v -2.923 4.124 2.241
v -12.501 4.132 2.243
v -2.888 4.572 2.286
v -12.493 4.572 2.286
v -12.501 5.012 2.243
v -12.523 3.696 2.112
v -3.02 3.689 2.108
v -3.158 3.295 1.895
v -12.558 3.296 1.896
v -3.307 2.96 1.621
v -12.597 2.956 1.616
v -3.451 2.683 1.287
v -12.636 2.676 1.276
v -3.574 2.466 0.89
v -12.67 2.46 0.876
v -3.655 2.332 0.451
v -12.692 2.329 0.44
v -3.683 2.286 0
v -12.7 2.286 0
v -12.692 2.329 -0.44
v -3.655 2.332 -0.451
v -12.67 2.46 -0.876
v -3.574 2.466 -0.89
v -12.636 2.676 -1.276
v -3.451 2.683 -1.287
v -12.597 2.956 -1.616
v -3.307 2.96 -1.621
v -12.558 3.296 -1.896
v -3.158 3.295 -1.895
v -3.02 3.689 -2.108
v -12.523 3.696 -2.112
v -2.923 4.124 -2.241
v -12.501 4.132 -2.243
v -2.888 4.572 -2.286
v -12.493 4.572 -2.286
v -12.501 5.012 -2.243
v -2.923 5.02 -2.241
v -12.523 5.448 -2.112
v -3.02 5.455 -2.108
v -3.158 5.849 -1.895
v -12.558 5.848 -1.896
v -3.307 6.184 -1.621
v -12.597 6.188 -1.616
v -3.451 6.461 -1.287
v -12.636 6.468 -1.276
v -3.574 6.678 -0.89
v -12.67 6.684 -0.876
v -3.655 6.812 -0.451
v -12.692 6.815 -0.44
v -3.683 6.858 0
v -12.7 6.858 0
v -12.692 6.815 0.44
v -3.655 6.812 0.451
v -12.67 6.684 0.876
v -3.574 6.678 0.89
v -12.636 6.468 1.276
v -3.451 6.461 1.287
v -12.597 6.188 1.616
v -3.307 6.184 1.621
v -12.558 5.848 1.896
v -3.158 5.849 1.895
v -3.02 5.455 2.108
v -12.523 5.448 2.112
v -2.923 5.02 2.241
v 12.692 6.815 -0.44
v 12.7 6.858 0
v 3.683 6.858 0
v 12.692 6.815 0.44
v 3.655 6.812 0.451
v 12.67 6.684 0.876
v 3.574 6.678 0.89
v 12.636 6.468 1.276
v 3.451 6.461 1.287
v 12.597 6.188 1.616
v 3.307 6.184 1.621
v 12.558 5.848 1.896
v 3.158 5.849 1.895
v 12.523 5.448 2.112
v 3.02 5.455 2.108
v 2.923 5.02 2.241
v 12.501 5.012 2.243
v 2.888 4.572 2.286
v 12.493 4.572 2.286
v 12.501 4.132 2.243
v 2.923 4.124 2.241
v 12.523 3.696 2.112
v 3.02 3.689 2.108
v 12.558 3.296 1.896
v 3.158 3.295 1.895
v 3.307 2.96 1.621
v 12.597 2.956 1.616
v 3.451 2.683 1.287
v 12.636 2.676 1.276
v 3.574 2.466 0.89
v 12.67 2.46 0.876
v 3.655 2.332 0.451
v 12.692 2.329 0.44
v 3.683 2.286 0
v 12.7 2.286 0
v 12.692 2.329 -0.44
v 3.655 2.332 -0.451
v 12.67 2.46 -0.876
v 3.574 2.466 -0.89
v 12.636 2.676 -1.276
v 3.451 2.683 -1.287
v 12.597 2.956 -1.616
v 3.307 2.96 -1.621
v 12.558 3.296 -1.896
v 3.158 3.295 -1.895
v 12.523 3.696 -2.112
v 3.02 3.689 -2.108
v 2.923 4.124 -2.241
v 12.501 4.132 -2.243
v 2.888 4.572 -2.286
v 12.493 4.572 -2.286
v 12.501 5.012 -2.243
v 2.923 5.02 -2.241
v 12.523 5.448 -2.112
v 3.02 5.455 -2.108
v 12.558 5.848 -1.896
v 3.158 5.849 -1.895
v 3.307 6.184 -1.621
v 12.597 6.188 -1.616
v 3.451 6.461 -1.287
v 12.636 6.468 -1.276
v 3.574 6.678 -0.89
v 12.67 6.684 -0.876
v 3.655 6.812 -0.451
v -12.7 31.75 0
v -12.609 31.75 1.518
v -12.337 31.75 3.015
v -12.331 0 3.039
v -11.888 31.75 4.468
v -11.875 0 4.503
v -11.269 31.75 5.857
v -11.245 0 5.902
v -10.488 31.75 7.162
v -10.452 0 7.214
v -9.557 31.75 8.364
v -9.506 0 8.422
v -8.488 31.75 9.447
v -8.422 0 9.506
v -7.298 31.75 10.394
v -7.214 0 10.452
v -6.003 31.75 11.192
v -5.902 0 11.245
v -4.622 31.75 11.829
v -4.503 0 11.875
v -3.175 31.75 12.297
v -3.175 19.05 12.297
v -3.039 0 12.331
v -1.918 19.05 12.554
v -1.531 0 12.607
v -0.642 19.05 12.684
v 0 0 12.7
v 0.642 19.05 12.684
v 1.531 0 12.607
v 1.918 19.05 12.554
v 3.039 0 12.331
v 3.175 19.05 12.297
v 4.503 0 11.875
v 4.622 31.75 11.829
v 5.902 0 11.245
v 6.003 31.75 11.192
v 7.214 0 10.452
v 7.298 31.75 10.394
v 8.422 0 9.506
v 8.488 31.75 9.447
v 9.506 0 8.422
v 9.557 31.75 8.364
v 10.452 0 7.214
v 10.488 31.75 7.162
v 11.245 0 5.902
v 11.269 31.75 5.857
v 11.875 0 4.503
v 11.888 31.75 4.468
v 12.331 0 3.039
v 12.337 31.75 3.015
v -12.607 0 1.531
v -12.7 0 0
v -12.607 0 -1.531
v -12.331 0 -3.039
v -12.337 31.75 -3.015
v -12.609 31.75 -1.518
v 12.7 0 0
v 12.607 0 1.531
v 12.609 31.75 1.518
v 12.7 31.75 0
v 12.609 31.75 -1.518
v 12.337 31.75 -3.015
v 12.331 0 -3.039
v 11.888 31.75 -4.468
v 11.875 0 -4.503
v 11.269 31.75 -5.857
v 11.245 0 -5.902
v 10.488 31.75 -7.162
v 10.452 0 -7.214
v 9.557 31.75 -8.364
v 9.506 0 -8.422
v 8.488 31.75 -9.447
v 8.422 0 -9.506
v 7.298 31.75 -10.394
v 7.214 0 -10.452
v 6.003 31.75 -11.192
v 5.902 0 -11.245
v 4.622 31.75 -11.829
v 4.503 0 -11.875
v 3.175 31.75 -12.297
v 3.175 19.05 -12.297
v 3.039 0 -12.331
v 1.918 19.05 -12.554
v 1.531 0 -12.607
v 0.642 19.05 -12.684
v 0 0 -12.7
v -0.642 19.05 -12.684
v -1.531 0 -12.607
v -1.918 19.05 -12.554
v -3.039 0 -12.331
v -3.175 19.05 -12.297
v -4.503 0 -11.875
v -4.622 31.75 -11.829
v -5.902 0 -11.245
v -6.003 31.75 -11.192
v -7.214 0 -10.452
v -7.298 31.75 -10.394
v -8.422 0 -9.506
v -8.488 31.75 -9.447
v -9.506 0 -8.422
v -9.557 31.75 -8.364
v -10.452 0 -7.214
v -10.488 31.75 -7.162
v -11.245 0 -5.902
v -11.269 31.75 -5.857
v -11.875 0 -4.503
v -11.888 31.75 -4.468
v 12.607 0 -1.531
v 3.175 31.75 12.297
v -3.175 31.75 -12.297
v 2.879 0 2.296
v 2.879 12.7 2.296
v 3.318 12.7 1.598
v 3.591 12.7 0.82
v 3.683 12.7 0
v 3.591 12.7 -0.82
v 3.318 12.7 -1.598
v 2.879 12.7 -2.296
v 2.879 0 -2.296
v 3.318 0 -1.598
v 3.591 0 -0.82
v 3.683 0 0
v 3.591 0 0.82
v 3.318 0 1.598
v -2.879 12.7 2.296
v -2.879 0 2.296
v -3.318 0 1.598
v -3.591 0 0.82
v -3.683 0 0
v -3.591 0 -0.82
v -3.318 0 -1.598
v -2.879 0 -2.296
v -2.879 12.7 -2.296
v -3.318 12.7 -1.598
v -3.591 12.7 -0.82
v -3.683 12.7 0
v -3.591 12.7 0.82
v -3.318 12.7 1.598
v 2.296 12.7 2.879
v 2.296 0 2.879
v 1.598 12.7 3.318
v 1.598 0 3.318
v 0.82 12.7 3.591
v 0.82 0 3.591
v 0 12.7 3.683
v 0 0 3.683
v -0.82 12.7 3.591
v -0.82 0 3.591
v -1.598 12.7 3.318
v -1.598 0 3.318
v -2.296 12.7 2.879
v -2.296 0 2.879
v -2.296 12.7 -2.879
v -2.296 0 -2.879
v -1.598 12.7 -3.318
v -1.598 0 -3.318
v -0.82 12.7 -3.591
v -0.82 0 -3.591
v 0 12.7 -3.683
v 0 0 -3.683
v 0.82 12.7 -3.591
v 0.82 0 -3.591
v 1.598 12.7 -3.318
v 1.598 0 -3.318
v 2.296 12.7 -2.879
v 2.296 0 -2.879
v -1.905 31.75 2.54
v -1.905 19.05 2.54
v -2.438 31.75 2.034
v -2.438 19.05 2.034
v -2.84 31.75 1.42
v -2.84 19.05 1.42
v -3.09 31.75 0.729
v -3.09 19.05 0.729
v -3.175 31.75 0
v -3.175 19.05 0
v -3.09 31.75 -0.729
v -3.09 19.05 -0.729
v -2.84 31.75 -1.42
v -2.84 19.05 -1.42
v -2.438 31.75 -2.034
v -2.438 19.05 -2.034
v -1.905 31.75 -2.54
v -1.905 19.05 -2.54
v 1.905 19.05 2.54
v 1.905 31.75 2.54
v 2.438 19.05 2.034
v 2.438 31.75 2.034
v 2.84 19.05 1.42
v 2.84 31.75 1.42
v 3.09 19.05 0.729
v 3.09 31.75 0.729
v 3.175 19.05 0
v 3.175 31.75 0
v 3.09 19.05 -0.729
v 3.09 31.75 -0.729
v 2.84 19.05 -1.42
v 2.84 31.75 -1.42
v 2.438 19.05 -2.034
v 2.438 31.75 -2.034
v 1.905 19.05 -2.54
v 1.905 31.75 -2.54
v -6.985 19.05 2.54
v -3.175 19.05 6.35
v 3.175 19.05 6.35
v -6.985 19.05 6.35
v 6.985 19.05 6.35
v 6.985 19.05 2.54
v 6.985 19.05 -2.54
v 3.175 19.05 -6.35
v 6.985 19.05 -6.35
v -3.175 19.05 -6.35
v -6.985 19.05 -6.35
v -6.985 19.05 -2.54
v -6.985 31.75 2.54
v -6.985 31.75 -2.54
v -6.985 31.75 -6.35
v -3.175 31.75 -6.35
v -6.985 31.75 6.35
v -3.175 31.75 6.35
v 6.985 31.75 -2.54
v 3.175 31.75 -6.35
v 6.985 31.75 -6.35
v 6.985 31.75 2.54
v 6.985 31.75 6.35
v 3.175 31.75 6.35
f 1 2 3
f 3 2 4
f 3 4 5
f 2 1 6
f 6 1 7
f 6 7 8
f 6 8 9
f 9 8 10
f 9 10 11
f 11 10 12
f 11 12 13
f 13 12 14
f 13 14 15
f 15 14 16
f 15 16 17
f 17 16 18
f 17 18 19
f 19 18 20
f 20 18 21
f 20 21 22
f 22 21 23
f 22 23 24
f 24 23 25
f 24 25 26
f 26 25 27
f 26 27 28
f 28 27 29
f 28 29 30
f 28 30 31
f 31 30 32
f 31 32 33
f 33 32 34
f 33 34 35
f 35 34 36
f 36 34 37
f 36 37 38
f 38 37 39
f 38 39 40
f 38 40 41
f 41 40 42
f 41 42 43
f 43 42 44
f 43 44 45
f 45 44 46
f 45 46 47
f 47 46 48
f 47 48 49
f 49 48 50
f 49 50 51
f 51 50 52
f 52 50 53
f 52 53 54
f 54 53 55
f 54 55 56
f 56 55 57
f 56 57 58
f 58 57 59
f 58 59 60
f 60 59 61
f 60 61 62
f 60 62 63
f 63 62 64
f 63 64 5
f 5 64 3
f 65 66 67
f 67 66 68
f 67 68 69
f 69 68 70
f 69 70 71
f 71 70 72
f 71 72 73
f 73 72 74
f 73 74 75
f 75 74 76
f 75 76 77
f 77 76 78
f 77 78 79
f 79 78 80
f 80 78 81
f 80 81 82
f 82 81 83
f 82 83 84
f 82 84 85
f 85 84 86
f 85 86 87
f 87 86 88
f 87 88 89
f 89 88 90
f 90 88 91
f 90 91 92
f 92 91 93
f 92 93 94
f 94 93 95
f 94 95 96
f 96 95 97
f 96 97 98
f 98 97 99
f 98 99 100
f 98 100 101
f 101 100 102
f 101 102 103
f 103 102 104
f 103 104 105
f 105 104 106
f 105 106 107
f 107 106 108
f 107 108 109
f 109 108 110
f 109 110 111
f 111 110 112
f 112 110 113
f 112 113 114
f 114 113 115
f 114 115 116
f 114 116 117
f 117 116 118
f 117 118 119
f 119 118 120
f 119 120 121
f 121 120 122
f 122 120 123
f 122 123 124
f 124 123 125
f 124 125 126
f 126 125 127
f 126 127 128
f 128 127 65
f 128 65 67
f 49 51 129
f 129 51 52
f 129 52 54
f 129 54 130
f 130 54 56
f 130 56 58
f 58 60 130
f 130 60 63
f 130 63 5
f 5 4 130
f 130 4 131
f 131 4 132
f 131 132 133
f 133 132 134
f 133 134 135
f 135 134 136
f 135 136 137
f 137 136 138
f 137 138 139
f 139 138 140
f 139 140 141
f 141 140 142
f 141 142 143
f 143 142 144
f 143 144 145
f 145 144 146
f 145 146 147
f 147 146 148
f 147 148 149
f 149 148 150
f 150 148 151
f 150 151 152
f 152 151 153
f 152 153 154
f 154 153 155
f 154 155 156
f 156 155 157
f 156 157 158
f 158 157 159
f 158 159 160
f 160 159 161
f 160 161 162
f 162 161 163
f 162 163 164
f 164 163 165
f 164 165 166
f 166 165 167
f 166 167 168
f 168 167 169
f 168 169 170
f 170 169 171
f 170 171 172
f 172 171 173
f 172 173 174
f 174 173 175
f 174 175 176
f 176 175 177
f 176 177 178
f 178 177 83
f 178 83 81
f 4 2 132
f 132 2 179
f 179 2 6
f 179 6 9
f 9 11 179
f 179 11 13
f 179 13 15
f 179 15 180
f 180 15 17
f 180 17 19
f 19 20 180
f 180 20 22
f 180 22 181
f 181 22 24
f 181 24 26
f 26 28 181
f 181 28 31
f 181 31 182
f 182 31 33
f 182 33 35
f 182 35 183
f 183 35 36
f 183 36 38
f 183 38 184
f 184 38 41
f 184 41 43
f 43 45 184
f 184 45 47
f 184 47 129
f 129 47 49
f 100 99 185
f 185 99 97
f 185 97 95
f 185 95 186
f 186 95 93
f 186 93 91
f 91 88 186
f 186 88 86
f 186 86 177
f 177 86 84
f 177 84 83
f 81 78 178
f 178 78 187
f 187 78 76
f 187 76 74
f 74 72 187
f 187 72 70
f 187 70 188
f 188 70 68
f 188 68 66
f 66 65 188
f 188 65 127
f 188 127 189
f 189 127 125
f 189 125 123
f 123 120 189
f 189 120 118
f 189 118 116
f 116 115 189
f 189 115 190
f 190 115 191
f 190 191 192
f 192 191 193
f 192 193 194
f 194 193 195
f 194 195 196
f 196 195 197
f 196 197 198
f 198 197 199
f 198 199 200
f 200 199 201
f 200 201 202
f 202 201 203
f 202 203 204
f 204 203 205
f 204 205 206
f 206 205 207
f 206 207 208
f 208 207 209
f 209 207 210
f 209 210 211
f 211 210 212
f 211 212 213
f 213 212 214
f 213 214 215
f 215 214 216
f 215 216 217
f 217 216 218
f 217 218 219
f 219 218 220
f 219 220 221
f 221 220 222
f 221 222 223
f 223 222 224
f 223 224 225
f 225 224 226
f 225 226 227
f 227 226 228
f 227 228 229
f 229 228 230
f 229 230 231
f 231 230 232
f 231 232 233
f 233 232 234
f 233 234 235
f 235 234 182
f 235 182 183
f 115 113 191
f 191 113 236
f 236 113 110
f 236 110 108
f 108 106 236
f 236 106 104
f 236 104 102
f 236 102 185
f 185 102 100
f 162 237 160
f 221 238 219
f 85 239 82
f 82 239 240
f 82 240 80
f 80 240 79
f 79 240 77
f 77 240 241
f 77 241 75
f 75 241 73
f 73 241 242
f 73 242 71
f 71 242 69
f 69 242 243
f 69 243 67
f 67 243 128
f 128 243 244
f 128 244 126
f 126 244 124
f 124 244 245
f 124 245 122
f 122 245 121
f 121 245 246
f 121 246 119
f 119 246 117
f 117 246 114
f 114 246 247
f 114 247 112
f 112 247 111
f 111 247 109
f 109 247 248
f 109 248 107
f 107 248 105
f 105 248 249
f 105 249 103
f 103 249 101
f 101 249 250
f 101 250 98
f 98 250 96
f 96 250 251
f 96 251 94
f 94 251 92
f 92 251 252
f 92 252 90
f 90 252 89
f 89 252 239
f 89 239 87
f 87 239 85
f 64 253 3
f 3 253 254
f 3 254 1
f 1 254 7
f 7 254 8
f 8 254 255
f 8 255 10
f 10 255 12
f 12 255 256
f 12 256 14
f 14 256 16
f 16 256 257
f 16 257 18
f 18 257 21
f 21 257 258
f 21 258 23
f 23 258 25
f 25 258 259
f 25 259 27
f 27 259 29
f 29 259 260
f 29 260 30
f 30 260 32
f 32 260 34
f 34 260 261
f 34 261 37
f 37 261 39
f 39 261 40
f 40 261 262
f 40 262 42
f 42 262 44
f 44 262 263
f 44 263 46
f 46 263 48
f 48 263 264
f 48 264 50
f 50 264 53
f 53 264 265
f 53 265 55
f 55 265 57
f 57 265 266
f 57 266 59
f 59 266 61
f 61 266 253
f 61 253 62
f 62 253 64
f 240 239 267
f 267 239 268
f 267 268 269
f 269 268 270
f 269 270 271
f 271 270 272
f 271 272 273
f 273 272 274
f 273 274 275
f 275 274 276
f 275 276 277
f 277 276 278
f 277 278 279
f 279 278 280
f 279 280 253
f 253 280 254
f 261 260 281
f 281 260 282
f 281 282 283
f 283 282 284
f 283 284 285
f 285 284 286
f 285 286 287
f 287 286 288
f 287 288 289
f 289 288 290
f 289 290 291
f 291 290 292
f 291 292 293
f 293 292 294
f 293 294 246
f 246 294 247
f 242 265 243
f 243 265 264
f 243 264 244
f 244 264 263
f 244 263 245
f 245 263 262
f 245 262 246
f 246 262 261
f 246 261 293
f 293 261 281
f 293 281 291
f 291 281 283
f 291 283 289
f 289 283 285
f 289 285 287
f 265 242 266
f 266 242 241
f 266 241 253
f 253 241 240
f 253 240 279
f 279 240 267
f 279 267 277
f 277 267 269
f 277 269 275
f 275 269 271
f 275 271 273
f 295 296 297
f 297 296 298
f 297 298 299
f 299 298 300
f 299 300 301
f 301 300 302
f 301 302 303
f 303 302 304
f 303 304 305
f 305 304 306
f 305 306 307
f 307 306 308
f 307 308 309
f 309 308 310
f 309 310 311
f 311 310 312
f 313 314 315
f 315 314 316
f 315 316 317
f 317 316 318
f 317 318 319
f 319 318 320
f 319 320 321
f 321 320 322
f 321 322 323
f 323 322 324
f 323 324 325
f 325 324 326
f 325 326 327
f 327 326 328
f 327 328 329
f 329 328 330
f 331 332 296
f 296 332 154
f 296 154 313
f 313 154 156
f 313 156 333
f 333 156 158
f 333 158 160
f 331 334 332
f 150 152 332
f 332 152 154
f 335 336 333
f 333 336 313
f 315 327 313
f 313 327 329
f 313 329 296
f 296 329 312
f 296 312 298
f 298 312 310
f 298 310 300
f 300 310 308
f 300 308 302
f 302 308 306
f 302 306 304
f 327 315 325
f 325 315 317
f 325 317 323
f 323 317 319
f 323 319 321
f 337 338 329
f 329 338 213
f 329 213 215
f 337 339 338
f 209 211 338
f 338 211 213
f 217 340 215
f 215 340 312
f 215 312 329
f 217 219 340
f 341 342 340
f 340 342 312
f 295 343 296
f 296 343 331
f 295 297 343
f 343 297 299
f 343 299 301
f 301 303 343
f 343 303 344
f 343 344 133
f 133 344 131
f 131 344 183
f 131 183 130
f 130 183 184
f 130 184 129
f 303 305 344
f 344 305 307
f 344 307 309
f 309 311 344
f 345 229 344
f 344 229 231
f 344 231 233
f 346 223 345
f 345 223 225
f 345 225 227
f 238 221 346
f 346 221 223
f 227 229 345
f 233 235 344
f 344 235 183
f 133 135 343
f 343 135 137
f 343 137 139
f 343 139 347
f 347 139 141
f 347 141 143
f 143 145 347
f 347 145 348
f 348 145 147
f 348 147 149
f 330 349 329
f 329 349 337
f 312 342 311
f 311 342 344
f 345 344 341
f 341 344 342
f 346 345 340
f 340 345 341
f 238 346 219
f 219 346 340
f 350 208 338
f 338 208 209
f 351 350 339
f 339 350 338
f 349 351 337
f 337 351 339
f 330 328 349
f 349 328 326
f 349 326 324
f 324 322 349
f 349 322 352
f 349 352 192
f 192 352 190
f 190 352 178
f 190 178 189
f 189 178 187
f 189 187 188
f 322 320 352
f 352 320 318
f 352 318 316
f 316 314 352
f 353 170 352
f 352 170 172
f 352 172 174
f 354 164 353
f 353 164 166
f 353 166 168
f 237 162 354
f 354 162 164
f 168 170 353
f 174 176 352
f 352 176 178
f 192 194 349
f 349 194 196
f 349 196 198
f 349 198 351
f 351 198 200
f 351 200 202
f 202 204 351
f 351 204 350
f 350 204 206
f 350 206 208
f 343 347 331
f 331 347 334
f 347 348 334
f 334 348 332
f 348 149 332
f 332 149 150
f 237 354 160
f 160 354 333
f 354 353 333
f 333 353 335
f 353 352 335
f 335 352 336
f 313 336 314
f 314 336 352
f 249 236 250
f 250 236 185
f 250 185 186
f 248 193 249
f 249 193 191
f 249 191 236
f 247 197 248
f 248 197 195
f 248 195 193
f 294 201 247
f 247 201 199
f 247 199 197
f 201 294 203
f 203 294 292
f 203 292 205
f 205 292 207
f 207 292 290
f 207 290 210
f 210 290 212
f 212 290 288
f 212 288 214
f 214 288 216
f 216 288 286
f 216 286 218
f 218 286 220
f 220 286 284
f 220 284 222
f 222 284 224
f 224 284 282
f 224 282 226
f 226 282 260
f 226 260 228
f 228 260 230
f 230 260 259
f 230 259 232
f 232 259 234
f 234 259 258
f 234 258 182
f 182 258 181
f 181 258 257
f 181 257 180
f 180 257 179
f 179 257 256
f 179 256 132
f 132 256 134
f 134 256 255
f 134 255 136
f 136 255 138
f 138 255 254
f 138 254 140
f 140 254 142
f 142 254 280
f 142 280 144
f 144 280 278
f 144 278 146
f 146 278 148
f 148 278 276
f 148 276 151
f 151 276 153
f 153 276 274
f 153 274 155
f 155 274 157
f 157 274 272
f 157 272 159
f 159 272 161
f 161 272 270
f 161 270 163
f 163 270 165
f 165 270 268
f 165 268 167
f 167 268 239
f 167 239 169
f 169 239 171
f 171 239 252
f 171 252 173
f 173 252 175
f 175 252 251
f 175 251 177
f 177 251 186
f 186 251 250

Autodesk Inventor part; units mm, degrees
ref_plane "YZ Plane" through (0, 0, 0) normal (1, 0, 0) x (0, 1, 0)
ref_plane "XZ Plane" through (0, 0, 0) normal (0, 1, 0) x (-1, 0, 0)
ref_plane "XY Plane" through (0, 0, 0) normal (0, 0, 1) x (1, 0, 0)
sketch "Sketch1" plane through (0, 0, 0) normal (0, 1, 0) x (-1, 0, 0)
  circle A0 centre (0, 0) radius 12.7
  dimension "d0" = 25.4
extrude "Extrusion1" add sketch "Sketch1" along normal blind 31.75
sketch "Sketch3" plane through (0, 31.75, 0) normal (0, 1, 0) x (1, 0, 0)
  circle A0 centre (0, 0) radius 12.7 projected
  line L0 (0, -12.7) -> (-3.175, -12.7)
  line L1 (-3.175, -12.7) -> (-3.175, -6.35)
  line L2 (-3.175, -6.35) -> (-6.985, -6.35)
  line L3 (-6.985, -6.35) -> (-6.985, -2.54)
  line L4 (-6.985, -2.54) -> (0, -2.54)
  line L5 (0, -12.7) -> (0, -2.54)
  line L6 (0, -12.7) -> (3.175, -12.7)
  line L7 (3.175, -12.7) -> (3.175, -6.35)
  line L8 (3.175, -6.35) -> (6.985, -6.35)
  line L9 (6.985, -6.35) -> (6.985, -2.54)
  line L10 (6.985, -2.54) -> (0, -2.54)
  point P0 (-3.175, -12.2967)
  point P1 (3.175, -12.2967)
  dimension "d3" = 3.175
  dimension "d4" = 6.35
  dimension "d5" = 3.81
  dimension "d6" = 3.81
extrude "Extrusion2" cut sketch "Sketch3" against normal blind 12.7 contours L1 L2 L3 L4 L5 A0 | A0 L5 L10 L9 L8 L7
mirror "Mirror1" about plane through (0, 0, 0) normal (0, 0, 1) of "Extrusion2"
sketch "Sketch4" plane through (0, 31.75, 0) normal (0, 1, 0) x (1, 0, 0)
  point P0 (0, 0)
  point P1 (0, 0)
hole "Hole1" at (0, 31.75, 0) direction (0, -1, 0) diameter 6.35 depth 12.7 clearance for "Flat Head Machine Screw" size "M6" standard "Ansi Metric M Profile"
sketch "Sketch5" plane through (0, 0, 0) normal (0, -1, 0) x (1, 0, 0)
  point P0 (0, 0)
  point P1 (0, 0)
hole "Hole2" at (0, 0, 0) direction (0, 1, 0) diameter 7.366 depth 12.7
sketch "Sketch8" plane through (0, 0, 0) normal (1, 0, 0) x (0, 1, 0)
  circle A0 centre (4.572, 0) radius 2.286
  line L0 (0, -12.7) -> (0, 12.7) projected
  point P0 (0, 0)
  dimension "d33" = 4.572
  dimension "d34" = 4.572
extrude "Extrusion5" cut sketch "Sketch8" along normal mid plane 25.4
properties part number "hub"
